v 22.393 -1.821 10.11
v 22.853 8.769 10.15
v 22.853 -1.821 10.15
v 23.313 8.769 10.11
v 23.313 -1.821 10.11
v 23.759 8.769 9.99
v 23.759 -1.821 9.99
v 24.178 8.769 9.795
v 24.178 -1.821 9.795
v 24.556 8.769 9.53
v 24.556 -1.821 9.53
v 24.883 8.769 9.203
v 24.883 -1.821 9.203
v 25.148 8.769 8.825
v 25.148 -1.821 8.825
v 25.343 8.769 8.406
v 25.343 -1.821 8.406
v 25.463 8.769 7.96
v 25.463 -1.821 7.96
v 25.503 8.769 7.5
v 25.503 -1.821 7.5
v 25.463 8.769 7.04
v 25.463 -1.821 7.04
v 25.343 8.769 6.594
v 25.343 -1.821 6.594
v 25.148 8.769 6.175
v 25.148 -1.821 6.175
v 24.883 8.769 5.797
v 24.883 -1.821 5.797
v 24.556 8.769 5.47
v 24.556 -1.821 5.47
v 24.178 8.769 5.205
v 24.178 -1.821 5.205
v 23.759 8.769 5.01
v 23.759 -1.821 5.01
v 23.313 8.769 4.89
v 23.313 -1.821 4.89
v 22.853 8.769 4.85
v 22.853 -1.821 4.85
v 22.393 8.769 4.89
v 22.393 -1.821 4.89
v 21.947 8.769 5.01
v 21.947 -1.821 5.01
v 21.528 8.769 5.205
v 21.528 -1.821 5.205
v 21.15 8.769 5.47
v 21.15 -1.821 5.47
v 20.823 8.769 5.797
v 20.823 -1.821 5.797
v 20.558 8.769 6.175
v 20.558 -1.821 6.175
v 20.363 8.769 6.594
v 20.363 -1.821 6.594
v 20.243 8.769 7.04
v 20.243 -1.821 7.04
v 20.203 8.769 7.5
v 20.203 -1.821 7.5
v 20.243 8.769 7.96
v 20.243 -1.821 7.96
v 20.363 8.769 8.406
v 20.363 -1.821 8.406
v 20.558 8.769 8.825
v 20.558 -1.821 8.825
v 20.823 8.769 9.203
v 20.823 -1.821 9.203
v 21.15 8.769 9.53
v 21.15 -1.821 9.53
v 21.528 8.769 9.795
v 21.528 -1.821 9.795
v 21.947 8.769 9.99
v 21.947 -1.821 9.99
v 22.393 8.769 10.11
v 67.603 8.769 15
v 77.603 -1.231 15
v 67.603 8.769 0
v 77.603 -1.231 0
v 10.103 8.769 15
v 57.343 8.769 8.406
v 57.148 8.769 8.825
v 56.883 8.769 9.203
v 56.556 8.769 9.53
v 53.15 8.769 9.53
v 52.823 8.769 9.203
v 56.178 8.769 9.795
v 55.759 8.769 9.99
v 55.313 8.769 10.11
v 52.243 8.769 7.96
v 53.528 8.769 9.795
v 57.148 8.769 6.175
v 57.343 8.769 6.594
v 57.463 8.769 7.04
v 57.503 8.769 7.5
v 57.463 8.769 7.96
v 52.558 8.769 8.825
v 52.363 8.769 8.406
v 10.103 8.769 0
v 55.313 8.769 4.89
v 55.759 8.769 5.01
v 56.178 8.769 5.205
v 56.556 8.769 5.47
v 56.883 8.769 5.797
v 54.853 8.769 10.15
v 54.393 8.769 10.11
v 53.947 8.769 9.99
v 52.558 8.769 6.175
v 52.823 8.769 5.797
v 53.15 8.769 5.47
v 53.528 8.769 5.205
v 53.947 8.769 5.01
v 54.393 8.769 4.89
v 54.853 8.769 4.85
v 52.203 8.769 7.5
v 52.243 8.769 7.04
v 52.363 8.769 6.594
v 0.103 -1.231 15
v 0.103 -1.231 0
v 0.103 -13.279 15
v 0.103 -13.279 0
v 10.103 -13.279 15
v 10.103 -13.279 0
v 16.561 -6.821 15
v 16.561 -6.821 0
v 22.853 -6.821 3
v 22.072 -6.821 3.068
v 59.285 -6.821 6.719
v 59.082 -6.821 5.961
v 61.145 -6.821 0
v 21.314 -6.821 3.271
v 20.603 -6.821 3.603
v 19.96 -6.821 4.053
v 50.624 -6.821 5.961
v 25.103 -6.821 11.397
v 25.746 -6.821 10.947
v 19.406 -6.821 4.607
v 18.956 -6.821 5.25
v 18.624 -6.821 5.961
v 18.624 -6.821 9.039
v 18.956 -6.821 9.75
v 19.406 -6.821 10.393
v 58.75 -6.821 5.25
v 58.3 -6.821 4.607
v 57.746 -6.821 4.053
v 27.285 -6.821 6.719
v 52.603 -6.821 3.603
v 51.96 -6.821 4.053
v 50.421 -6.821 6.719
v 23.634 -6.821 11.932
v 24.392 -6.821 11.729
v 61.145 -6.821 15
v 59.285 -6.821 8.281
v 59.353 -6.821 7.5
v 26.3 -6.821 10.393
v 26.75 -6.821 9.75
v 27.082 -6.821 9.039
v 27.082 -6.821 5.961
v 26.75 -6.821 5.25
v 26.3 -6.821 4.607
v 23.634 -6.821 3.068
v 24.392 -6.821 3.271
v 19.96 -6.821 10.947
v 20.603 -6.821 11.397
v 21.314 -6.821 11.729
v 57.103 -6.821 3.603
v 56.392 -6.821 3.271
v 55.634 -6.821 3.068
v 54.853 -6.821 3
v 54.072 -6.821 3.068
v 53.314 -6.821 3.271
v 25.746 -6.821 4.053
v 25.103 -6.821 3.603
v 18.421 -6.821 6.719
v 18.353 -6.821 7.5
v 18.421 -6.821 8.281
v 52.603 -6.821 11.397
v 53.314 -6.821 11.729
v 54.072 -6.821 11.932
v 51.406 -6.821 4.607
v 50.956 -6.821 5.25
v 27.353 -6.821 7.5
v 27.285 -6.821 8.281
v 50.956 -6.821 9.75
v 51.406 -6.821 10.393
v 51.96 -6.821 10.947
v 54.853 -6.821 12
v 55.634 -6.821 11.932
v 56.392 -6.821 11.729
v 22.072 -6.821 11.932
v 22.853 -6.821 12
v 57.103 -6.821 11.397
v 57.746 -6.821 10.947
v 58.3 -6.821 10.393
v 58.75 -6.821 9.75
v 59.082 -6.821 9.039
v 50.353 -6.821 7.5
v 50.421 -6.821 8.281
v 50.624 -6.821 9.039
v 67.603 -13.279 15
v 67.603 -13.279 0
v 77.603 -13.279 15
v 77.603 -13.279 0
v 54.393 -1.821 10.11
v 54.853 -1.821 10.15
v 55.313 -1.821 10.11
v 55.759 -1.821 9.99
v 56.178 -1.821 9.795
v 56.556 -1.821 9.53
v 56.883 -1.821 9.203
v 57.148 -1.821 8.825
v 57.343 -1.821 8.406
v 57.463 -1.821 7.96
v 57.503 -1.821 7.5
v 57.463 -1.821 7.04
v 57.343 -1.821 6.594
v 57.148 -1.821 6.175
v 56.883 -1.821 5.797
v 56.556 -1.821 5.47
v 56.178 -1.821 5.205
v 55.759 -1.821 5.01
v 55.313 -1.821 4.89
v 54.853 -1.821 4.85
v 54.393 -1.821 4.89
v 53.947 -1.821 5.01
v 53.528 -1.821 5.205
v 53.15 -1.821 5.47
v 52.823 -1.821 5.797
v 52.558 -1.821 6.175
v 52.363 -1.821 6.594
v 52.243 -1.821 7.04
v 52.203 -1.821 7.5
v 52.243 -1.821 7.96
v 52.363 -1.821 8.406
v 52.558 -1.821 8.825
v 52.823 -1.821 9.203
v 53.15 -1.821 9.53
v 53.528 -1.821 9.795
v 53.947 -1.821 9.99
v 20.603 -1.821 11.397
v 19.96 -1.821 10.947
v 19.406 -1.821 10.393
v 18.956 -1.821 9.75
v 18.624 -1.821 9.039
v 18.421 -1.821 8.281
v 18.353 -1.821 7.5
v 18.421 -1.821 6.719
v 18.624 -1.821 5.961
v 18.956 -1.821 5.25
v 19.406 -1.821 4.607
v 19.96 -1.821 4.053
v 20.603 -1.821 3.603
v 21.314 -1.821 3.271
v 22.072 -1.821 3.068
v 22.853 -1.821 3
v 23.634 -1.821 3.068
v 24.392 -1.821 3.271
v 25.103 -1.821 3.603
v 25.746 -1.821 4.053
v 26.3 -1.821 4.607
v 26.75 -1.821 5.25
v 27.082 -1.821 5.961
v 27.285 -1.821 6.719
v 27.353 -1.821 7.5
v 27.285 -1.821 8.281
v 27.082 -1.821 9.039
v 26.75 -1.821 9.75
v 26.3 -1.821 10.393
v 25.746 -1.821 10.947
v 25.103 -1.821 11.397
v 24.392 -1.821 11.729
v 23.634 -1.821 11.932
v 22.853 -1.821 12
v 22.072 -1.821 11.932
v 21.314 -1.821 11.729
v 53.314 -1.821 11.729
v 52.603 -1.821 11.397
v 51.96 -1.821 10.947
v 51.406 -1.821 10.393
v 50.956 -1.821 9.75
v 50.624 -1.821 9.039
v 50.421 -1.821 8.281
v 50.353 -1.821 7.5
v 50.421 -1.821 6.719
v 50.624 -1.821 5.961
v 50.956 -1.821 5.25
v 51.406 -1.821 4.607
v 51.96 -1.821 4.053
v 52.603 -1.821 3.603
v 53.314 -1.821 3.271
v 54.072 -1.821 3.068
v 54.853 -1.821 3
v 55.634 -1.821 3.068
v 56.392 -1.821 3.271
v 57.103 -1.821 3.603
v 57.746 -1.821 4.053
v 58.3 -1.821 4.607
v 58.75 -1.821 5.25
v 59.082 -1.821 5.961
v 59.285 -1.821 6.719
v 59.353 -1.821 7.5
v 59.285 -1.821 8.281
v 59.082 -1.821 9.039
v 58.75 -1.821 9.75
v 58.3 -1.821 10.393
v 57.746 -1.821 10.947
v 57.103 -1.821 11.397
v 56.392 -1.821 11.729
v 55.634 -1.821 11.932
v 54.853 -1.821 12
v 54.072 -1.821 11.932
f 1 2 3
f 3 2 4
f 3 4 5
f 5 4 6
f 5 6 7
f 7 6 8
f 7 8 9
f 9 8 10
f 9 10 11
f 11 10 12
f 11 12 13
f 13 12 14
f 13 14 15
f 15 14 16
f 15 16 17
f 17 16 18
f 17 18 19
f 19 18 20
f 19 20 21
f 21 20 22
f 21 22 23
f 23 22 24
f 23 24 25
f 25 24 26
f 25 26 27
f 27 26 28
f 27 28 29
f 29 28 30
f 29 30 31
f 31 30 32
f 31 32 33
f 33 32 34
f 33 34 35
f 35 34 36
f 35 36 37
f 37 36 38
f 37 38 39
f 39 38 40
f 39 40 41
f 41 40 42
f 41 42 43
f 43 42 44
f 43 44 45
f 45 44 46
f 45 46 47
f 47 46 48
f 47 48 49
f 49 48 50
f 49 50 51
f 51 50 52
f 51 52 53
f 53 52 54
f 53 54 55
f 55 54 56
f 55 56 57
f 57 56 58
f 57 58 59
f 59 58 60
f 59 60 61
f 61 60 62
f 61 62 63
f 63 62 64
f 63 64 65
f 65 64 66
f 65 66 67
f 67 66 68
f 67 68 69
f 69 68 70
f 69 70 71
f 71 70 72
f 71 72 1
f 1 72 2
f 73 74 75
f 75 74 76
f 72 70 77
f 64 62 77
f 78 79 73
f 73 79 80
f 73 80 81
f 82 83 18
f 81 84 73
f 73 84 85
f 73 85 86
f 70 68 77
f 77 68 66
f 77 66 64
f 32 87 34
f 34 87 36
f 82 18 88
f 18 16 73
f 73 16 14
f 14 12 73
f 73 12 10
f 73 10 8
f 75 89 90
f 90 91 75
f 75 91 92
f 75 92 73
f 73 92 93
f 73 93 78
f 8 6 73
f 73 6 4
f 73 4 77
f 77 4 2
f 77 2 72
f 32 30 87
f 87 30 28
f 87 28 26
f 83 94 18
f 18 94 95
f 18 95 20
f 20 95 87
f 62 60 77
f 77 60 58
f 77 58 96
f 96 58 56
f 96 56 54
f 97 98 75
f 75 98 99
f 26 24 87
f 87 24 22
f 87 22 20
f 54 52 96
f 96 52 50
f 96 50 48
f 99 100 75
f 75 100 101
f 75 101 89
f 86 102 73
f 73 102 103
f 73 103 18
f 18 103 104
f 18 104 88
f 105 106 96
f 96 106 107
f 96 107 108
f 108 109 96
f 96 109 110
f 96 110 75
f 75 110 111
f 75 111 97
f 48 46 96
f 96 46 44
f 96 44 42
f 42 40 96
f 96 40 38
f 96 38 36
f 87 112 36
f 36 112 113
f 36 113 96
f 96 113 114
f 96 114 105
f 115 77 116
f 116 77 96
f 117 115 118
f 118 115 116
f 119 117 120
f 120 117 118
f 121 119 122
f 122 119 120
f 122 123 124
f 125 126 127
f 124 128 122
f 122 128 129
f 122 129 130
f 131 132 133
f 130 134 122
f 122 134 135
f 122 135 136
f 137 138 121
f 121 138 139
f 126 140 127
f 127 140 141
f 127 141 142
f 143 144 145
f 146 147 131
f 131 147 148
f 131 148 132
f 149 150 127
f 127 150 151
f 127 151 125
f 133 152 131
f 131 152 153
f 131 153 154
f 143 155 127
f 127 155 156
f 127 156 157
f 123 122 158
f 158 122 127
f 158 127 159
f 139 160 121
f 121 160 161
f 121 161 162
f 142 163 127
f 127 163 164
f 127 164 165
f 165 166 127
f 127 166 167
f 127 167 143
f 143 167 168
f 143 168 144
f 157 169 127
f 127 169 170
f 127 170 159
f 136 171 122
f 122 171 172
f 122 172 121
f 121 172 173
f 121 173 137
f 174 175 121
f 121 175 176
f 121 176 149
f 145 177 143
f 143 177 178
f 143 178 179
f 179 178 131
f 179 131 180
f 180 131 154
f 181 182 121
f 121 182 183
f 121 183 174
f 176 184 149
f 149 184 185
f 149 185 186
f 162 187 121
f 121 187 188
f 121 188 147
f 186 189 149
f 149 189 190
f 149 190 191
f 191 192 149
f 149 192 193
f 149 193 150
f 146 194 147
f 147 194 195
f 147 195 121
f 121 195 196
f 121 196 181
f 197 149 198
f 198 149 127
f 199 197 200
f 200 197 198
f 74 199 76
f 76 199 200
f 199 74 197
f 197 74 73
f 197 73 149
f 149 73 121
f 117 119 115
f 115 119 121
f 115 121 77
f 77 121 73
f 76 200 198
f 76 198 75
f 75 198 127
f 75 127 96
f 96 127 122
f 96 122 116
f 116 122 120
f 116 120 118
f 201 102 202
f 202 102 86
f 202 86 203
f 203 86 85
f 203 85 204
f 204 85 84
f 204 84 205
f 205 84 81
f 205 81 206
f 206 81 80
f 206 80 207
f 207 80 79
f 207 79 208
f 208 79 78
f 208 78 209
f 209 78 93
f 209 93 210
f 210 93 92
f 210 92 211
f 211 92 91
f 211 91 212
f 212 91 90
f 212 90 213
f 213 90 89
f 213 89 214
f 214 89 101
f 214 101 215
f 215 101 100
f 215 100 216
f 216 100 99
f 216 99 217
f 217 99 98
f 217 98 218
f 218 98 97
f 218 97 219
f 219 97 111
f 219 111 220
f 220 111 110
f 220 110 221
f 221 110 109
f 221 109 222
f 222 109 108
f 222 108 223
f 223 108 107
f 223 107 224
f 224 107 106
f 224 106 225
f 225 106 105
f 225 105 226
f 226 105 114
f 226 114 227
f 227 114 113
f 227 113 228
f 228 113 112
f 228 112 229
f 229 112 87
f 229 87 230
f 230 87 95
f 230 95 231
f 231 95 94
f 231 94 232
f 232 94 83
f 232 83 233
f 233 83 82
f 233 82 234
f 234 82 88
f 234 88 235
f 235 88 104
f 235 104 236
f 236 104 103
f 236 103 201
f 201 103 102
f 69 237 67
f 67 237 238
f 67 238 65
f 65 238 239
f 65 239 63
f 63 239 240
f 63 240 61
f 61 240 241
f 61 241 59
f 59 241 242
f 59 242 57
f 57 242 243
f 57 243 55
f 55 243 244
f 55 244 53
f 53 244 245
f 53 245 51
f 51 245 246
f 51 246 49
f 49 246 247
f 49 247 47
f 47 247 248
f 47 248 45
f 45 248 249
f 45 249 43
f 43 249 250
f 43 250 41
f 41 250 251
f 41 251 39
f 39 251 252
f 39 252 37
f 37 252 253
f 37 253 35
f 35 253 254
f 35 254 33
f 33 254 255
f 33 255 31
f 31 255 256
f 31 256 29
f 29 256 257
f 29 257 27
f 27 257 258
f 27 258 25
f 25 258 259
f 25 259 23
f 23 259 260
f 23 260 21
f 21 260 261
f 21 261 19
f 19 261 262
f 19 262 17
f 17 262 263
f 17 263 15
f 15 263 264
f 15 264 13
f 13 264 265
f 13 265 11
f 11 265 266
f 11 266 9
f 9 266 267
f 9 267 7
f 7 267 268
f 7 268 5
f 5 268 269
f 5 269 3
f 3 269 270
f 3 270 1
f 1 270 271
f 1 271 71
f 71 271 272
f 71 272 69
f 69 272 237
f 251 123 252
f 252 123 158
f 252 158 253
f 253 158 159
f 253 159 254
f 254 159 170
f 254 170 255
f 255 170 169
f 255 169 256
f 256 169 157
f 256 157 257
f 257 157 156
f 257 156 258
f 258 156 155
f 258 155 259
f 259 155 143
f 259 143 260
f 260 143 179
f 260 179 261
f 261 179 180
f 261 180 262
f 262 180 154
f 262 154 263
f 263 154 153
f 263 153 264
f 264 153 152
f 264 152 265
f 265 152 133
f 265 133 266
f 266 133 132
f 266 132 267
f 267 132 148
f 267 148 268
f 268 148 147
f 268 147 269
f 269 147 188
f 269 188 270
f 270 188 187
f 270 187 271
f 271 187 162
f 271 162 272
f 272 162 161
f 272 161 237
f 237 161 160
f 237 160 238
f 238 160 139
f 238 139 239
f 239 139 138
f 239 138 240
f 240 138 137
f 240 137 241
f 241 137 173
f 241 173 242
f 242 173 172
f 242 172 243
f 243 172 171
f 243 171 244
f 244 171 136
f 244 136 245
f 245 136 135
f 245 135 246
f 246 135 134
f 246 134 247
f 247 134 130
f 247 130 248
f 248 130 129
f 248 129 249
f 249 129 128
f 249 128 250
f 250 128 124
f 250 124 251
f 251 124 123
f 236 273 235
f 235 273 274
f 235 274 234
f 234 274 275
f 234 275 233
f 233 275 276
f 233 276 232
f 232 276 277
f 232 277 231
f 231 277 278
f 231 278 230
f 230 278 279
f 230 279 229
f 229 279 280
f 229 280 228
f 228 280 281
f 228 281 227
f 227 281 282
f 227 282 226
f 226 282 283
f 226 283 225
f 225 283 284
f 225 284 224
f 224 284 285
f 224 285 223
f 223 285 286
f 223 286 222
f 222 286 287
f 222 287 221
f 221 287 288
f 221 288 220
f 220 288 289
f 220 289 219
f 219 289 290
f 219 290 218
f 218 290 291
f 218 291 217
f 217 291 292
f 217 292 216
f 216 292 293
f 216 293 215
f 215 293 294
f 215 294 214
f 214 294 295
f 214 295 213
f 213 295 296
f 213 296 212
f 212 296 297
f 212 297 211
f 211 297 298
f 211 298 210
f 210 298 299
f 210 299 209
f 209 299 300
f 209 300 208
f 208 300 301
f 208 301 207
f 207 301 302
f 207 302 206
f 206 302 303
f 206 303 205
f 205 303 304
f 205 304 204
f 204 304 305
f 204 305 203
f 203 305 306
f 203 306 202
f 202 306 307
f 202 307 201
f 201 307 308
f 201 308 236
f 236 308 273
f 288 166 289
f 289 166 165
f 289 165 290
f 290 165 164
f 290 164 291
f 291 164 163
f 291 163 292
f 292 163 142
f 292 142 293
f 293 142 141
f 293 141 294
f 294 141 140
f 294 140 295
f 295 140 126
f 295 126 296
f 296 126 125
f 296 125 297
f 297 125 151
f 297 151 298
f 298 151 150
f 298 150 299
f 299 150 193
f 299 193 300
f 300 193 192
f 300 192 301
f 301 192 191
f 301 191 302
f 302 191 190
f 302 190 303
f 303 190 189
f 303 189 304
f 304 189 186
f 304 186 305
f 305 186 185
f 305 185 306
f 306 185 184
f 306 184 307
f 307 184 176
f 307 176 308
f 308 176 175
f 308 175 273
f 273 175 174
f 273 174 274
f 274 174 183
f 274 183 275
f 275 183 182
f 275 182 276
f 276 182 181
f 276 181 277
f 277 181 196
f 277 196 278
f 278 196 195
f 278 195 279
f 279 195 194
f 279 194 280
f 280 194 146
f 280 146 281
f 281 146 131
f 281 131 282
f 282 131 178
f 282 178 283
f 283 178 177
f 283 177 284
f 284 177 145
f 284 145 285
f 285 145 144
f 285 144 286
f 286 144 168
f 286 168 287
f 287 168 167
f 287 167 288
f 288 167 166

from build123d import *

# Parameters (mm, degrees)
SKETCH1_W           = 5
SKETCH1_H           = 10.590486739
BOSS_EXTRUDE1_DEPTH = 15
SKETCH2_R           = 2.65
CUT_EXTRUDE1_DEPTH  = 23.048277791
SKETCH3_R           = 4.5
CUT_EXTRUDE2_DEPTH  = 5


with BuildPart() as part:
    # Sketch1 → Boss-Extrude1 (new body)
    with BuildSketch(Plane.XY):
        Polygon((20.353041123, 8.769305032), (10.103041123, 8.769305032), (0.103041123, -1.230694968), (0.103041123, -13.278972759), (10.103041123, -13.278972759), (16.560832175, -6.821181707), (18.353041123, -6.821181707), (18.353041123, -1.821181707), (20.353041123, -1.821181707), align=None)
        Polygon((25.353041123, -1.821181707), (20.353041123, -1.821181707), (18.353041123, -1.821181707), (18.353041123, -6.821181707), (27.353041123, -6.821181707), (27.353041123, -1.821181707), align=None)
        with Locations((22.853041123, 3.474061663)):
            Rectangle(SKETCH1_W, SKETCH1_H)
        Polygon((52.353041123, 8.769305032), (25.353041123, 8.769305032), (25.353041123, -1.821181707), (27.353041123, -1.821181707), (27.353041123, -6.821181707), (50.353041123, -6.821181707), (50.353041123, -1.821181707), (52.353041123, -1.821181707), align=None)
        Polygon((57.353041123, -1.821181707), (52.353041123, -1.821181707), (50.353041123, -1.821181707), (50.353041123, -6.821181707), (59.353041123, -6.821181707), (59.353041123, -1.821181707), align=None)
        with Locations((54.853041123, 3.474061663)):
            Rectangle(SKETCH1_W, SKETCH1_H)
        Polygon((67.603041123, 8.769305032), (57.353041123, 8.769305032), (57.353041123, -1.821181707), (59.353041123, -1.821181707), (59.353041123, -6.821181707), (61.145250072, -6.821181707), (67.603041123, -13.278972759), (77.603041123, -13.278972759), (77.603041123, -1.230694968), align=None)
    extrude(amount=BOSS_EXTRUDE1_DEPTH)

    # Sketch2 → Cut-Extrude1 (cut, through all)
    with BuildSketch(Plane(origin=(0, 8.769305032, 0), x_dir=(1, 0, 0), z_dir=(0, 1, 0))):
        with Locations((22.853041123, -7.5)):
            Circle(SKETCH2_R)
        with Locations((54.853041123, -7.5)):
            Circle(SKETCH2_R)
    extrude(amount=-CUT_EXTRUDE1_DEPTH, mode=Mode.SUBTRACT)

    # Sketch3 → Cut-Extrude2 (cut)
    with BuildSketch(Plane.XZ.offset(6.821181707)):
        with Locations((22.853041123, 7.5)):
            Circle(SKETCH3_R)
        with Locations((54.853041123, 7.5)):
            Circle(SKETCH3_R)
    extrude(amount=-CUT_EXTRUDE2_DEPTH, mode=Mode.SUBTRACT)


solid = part.part
